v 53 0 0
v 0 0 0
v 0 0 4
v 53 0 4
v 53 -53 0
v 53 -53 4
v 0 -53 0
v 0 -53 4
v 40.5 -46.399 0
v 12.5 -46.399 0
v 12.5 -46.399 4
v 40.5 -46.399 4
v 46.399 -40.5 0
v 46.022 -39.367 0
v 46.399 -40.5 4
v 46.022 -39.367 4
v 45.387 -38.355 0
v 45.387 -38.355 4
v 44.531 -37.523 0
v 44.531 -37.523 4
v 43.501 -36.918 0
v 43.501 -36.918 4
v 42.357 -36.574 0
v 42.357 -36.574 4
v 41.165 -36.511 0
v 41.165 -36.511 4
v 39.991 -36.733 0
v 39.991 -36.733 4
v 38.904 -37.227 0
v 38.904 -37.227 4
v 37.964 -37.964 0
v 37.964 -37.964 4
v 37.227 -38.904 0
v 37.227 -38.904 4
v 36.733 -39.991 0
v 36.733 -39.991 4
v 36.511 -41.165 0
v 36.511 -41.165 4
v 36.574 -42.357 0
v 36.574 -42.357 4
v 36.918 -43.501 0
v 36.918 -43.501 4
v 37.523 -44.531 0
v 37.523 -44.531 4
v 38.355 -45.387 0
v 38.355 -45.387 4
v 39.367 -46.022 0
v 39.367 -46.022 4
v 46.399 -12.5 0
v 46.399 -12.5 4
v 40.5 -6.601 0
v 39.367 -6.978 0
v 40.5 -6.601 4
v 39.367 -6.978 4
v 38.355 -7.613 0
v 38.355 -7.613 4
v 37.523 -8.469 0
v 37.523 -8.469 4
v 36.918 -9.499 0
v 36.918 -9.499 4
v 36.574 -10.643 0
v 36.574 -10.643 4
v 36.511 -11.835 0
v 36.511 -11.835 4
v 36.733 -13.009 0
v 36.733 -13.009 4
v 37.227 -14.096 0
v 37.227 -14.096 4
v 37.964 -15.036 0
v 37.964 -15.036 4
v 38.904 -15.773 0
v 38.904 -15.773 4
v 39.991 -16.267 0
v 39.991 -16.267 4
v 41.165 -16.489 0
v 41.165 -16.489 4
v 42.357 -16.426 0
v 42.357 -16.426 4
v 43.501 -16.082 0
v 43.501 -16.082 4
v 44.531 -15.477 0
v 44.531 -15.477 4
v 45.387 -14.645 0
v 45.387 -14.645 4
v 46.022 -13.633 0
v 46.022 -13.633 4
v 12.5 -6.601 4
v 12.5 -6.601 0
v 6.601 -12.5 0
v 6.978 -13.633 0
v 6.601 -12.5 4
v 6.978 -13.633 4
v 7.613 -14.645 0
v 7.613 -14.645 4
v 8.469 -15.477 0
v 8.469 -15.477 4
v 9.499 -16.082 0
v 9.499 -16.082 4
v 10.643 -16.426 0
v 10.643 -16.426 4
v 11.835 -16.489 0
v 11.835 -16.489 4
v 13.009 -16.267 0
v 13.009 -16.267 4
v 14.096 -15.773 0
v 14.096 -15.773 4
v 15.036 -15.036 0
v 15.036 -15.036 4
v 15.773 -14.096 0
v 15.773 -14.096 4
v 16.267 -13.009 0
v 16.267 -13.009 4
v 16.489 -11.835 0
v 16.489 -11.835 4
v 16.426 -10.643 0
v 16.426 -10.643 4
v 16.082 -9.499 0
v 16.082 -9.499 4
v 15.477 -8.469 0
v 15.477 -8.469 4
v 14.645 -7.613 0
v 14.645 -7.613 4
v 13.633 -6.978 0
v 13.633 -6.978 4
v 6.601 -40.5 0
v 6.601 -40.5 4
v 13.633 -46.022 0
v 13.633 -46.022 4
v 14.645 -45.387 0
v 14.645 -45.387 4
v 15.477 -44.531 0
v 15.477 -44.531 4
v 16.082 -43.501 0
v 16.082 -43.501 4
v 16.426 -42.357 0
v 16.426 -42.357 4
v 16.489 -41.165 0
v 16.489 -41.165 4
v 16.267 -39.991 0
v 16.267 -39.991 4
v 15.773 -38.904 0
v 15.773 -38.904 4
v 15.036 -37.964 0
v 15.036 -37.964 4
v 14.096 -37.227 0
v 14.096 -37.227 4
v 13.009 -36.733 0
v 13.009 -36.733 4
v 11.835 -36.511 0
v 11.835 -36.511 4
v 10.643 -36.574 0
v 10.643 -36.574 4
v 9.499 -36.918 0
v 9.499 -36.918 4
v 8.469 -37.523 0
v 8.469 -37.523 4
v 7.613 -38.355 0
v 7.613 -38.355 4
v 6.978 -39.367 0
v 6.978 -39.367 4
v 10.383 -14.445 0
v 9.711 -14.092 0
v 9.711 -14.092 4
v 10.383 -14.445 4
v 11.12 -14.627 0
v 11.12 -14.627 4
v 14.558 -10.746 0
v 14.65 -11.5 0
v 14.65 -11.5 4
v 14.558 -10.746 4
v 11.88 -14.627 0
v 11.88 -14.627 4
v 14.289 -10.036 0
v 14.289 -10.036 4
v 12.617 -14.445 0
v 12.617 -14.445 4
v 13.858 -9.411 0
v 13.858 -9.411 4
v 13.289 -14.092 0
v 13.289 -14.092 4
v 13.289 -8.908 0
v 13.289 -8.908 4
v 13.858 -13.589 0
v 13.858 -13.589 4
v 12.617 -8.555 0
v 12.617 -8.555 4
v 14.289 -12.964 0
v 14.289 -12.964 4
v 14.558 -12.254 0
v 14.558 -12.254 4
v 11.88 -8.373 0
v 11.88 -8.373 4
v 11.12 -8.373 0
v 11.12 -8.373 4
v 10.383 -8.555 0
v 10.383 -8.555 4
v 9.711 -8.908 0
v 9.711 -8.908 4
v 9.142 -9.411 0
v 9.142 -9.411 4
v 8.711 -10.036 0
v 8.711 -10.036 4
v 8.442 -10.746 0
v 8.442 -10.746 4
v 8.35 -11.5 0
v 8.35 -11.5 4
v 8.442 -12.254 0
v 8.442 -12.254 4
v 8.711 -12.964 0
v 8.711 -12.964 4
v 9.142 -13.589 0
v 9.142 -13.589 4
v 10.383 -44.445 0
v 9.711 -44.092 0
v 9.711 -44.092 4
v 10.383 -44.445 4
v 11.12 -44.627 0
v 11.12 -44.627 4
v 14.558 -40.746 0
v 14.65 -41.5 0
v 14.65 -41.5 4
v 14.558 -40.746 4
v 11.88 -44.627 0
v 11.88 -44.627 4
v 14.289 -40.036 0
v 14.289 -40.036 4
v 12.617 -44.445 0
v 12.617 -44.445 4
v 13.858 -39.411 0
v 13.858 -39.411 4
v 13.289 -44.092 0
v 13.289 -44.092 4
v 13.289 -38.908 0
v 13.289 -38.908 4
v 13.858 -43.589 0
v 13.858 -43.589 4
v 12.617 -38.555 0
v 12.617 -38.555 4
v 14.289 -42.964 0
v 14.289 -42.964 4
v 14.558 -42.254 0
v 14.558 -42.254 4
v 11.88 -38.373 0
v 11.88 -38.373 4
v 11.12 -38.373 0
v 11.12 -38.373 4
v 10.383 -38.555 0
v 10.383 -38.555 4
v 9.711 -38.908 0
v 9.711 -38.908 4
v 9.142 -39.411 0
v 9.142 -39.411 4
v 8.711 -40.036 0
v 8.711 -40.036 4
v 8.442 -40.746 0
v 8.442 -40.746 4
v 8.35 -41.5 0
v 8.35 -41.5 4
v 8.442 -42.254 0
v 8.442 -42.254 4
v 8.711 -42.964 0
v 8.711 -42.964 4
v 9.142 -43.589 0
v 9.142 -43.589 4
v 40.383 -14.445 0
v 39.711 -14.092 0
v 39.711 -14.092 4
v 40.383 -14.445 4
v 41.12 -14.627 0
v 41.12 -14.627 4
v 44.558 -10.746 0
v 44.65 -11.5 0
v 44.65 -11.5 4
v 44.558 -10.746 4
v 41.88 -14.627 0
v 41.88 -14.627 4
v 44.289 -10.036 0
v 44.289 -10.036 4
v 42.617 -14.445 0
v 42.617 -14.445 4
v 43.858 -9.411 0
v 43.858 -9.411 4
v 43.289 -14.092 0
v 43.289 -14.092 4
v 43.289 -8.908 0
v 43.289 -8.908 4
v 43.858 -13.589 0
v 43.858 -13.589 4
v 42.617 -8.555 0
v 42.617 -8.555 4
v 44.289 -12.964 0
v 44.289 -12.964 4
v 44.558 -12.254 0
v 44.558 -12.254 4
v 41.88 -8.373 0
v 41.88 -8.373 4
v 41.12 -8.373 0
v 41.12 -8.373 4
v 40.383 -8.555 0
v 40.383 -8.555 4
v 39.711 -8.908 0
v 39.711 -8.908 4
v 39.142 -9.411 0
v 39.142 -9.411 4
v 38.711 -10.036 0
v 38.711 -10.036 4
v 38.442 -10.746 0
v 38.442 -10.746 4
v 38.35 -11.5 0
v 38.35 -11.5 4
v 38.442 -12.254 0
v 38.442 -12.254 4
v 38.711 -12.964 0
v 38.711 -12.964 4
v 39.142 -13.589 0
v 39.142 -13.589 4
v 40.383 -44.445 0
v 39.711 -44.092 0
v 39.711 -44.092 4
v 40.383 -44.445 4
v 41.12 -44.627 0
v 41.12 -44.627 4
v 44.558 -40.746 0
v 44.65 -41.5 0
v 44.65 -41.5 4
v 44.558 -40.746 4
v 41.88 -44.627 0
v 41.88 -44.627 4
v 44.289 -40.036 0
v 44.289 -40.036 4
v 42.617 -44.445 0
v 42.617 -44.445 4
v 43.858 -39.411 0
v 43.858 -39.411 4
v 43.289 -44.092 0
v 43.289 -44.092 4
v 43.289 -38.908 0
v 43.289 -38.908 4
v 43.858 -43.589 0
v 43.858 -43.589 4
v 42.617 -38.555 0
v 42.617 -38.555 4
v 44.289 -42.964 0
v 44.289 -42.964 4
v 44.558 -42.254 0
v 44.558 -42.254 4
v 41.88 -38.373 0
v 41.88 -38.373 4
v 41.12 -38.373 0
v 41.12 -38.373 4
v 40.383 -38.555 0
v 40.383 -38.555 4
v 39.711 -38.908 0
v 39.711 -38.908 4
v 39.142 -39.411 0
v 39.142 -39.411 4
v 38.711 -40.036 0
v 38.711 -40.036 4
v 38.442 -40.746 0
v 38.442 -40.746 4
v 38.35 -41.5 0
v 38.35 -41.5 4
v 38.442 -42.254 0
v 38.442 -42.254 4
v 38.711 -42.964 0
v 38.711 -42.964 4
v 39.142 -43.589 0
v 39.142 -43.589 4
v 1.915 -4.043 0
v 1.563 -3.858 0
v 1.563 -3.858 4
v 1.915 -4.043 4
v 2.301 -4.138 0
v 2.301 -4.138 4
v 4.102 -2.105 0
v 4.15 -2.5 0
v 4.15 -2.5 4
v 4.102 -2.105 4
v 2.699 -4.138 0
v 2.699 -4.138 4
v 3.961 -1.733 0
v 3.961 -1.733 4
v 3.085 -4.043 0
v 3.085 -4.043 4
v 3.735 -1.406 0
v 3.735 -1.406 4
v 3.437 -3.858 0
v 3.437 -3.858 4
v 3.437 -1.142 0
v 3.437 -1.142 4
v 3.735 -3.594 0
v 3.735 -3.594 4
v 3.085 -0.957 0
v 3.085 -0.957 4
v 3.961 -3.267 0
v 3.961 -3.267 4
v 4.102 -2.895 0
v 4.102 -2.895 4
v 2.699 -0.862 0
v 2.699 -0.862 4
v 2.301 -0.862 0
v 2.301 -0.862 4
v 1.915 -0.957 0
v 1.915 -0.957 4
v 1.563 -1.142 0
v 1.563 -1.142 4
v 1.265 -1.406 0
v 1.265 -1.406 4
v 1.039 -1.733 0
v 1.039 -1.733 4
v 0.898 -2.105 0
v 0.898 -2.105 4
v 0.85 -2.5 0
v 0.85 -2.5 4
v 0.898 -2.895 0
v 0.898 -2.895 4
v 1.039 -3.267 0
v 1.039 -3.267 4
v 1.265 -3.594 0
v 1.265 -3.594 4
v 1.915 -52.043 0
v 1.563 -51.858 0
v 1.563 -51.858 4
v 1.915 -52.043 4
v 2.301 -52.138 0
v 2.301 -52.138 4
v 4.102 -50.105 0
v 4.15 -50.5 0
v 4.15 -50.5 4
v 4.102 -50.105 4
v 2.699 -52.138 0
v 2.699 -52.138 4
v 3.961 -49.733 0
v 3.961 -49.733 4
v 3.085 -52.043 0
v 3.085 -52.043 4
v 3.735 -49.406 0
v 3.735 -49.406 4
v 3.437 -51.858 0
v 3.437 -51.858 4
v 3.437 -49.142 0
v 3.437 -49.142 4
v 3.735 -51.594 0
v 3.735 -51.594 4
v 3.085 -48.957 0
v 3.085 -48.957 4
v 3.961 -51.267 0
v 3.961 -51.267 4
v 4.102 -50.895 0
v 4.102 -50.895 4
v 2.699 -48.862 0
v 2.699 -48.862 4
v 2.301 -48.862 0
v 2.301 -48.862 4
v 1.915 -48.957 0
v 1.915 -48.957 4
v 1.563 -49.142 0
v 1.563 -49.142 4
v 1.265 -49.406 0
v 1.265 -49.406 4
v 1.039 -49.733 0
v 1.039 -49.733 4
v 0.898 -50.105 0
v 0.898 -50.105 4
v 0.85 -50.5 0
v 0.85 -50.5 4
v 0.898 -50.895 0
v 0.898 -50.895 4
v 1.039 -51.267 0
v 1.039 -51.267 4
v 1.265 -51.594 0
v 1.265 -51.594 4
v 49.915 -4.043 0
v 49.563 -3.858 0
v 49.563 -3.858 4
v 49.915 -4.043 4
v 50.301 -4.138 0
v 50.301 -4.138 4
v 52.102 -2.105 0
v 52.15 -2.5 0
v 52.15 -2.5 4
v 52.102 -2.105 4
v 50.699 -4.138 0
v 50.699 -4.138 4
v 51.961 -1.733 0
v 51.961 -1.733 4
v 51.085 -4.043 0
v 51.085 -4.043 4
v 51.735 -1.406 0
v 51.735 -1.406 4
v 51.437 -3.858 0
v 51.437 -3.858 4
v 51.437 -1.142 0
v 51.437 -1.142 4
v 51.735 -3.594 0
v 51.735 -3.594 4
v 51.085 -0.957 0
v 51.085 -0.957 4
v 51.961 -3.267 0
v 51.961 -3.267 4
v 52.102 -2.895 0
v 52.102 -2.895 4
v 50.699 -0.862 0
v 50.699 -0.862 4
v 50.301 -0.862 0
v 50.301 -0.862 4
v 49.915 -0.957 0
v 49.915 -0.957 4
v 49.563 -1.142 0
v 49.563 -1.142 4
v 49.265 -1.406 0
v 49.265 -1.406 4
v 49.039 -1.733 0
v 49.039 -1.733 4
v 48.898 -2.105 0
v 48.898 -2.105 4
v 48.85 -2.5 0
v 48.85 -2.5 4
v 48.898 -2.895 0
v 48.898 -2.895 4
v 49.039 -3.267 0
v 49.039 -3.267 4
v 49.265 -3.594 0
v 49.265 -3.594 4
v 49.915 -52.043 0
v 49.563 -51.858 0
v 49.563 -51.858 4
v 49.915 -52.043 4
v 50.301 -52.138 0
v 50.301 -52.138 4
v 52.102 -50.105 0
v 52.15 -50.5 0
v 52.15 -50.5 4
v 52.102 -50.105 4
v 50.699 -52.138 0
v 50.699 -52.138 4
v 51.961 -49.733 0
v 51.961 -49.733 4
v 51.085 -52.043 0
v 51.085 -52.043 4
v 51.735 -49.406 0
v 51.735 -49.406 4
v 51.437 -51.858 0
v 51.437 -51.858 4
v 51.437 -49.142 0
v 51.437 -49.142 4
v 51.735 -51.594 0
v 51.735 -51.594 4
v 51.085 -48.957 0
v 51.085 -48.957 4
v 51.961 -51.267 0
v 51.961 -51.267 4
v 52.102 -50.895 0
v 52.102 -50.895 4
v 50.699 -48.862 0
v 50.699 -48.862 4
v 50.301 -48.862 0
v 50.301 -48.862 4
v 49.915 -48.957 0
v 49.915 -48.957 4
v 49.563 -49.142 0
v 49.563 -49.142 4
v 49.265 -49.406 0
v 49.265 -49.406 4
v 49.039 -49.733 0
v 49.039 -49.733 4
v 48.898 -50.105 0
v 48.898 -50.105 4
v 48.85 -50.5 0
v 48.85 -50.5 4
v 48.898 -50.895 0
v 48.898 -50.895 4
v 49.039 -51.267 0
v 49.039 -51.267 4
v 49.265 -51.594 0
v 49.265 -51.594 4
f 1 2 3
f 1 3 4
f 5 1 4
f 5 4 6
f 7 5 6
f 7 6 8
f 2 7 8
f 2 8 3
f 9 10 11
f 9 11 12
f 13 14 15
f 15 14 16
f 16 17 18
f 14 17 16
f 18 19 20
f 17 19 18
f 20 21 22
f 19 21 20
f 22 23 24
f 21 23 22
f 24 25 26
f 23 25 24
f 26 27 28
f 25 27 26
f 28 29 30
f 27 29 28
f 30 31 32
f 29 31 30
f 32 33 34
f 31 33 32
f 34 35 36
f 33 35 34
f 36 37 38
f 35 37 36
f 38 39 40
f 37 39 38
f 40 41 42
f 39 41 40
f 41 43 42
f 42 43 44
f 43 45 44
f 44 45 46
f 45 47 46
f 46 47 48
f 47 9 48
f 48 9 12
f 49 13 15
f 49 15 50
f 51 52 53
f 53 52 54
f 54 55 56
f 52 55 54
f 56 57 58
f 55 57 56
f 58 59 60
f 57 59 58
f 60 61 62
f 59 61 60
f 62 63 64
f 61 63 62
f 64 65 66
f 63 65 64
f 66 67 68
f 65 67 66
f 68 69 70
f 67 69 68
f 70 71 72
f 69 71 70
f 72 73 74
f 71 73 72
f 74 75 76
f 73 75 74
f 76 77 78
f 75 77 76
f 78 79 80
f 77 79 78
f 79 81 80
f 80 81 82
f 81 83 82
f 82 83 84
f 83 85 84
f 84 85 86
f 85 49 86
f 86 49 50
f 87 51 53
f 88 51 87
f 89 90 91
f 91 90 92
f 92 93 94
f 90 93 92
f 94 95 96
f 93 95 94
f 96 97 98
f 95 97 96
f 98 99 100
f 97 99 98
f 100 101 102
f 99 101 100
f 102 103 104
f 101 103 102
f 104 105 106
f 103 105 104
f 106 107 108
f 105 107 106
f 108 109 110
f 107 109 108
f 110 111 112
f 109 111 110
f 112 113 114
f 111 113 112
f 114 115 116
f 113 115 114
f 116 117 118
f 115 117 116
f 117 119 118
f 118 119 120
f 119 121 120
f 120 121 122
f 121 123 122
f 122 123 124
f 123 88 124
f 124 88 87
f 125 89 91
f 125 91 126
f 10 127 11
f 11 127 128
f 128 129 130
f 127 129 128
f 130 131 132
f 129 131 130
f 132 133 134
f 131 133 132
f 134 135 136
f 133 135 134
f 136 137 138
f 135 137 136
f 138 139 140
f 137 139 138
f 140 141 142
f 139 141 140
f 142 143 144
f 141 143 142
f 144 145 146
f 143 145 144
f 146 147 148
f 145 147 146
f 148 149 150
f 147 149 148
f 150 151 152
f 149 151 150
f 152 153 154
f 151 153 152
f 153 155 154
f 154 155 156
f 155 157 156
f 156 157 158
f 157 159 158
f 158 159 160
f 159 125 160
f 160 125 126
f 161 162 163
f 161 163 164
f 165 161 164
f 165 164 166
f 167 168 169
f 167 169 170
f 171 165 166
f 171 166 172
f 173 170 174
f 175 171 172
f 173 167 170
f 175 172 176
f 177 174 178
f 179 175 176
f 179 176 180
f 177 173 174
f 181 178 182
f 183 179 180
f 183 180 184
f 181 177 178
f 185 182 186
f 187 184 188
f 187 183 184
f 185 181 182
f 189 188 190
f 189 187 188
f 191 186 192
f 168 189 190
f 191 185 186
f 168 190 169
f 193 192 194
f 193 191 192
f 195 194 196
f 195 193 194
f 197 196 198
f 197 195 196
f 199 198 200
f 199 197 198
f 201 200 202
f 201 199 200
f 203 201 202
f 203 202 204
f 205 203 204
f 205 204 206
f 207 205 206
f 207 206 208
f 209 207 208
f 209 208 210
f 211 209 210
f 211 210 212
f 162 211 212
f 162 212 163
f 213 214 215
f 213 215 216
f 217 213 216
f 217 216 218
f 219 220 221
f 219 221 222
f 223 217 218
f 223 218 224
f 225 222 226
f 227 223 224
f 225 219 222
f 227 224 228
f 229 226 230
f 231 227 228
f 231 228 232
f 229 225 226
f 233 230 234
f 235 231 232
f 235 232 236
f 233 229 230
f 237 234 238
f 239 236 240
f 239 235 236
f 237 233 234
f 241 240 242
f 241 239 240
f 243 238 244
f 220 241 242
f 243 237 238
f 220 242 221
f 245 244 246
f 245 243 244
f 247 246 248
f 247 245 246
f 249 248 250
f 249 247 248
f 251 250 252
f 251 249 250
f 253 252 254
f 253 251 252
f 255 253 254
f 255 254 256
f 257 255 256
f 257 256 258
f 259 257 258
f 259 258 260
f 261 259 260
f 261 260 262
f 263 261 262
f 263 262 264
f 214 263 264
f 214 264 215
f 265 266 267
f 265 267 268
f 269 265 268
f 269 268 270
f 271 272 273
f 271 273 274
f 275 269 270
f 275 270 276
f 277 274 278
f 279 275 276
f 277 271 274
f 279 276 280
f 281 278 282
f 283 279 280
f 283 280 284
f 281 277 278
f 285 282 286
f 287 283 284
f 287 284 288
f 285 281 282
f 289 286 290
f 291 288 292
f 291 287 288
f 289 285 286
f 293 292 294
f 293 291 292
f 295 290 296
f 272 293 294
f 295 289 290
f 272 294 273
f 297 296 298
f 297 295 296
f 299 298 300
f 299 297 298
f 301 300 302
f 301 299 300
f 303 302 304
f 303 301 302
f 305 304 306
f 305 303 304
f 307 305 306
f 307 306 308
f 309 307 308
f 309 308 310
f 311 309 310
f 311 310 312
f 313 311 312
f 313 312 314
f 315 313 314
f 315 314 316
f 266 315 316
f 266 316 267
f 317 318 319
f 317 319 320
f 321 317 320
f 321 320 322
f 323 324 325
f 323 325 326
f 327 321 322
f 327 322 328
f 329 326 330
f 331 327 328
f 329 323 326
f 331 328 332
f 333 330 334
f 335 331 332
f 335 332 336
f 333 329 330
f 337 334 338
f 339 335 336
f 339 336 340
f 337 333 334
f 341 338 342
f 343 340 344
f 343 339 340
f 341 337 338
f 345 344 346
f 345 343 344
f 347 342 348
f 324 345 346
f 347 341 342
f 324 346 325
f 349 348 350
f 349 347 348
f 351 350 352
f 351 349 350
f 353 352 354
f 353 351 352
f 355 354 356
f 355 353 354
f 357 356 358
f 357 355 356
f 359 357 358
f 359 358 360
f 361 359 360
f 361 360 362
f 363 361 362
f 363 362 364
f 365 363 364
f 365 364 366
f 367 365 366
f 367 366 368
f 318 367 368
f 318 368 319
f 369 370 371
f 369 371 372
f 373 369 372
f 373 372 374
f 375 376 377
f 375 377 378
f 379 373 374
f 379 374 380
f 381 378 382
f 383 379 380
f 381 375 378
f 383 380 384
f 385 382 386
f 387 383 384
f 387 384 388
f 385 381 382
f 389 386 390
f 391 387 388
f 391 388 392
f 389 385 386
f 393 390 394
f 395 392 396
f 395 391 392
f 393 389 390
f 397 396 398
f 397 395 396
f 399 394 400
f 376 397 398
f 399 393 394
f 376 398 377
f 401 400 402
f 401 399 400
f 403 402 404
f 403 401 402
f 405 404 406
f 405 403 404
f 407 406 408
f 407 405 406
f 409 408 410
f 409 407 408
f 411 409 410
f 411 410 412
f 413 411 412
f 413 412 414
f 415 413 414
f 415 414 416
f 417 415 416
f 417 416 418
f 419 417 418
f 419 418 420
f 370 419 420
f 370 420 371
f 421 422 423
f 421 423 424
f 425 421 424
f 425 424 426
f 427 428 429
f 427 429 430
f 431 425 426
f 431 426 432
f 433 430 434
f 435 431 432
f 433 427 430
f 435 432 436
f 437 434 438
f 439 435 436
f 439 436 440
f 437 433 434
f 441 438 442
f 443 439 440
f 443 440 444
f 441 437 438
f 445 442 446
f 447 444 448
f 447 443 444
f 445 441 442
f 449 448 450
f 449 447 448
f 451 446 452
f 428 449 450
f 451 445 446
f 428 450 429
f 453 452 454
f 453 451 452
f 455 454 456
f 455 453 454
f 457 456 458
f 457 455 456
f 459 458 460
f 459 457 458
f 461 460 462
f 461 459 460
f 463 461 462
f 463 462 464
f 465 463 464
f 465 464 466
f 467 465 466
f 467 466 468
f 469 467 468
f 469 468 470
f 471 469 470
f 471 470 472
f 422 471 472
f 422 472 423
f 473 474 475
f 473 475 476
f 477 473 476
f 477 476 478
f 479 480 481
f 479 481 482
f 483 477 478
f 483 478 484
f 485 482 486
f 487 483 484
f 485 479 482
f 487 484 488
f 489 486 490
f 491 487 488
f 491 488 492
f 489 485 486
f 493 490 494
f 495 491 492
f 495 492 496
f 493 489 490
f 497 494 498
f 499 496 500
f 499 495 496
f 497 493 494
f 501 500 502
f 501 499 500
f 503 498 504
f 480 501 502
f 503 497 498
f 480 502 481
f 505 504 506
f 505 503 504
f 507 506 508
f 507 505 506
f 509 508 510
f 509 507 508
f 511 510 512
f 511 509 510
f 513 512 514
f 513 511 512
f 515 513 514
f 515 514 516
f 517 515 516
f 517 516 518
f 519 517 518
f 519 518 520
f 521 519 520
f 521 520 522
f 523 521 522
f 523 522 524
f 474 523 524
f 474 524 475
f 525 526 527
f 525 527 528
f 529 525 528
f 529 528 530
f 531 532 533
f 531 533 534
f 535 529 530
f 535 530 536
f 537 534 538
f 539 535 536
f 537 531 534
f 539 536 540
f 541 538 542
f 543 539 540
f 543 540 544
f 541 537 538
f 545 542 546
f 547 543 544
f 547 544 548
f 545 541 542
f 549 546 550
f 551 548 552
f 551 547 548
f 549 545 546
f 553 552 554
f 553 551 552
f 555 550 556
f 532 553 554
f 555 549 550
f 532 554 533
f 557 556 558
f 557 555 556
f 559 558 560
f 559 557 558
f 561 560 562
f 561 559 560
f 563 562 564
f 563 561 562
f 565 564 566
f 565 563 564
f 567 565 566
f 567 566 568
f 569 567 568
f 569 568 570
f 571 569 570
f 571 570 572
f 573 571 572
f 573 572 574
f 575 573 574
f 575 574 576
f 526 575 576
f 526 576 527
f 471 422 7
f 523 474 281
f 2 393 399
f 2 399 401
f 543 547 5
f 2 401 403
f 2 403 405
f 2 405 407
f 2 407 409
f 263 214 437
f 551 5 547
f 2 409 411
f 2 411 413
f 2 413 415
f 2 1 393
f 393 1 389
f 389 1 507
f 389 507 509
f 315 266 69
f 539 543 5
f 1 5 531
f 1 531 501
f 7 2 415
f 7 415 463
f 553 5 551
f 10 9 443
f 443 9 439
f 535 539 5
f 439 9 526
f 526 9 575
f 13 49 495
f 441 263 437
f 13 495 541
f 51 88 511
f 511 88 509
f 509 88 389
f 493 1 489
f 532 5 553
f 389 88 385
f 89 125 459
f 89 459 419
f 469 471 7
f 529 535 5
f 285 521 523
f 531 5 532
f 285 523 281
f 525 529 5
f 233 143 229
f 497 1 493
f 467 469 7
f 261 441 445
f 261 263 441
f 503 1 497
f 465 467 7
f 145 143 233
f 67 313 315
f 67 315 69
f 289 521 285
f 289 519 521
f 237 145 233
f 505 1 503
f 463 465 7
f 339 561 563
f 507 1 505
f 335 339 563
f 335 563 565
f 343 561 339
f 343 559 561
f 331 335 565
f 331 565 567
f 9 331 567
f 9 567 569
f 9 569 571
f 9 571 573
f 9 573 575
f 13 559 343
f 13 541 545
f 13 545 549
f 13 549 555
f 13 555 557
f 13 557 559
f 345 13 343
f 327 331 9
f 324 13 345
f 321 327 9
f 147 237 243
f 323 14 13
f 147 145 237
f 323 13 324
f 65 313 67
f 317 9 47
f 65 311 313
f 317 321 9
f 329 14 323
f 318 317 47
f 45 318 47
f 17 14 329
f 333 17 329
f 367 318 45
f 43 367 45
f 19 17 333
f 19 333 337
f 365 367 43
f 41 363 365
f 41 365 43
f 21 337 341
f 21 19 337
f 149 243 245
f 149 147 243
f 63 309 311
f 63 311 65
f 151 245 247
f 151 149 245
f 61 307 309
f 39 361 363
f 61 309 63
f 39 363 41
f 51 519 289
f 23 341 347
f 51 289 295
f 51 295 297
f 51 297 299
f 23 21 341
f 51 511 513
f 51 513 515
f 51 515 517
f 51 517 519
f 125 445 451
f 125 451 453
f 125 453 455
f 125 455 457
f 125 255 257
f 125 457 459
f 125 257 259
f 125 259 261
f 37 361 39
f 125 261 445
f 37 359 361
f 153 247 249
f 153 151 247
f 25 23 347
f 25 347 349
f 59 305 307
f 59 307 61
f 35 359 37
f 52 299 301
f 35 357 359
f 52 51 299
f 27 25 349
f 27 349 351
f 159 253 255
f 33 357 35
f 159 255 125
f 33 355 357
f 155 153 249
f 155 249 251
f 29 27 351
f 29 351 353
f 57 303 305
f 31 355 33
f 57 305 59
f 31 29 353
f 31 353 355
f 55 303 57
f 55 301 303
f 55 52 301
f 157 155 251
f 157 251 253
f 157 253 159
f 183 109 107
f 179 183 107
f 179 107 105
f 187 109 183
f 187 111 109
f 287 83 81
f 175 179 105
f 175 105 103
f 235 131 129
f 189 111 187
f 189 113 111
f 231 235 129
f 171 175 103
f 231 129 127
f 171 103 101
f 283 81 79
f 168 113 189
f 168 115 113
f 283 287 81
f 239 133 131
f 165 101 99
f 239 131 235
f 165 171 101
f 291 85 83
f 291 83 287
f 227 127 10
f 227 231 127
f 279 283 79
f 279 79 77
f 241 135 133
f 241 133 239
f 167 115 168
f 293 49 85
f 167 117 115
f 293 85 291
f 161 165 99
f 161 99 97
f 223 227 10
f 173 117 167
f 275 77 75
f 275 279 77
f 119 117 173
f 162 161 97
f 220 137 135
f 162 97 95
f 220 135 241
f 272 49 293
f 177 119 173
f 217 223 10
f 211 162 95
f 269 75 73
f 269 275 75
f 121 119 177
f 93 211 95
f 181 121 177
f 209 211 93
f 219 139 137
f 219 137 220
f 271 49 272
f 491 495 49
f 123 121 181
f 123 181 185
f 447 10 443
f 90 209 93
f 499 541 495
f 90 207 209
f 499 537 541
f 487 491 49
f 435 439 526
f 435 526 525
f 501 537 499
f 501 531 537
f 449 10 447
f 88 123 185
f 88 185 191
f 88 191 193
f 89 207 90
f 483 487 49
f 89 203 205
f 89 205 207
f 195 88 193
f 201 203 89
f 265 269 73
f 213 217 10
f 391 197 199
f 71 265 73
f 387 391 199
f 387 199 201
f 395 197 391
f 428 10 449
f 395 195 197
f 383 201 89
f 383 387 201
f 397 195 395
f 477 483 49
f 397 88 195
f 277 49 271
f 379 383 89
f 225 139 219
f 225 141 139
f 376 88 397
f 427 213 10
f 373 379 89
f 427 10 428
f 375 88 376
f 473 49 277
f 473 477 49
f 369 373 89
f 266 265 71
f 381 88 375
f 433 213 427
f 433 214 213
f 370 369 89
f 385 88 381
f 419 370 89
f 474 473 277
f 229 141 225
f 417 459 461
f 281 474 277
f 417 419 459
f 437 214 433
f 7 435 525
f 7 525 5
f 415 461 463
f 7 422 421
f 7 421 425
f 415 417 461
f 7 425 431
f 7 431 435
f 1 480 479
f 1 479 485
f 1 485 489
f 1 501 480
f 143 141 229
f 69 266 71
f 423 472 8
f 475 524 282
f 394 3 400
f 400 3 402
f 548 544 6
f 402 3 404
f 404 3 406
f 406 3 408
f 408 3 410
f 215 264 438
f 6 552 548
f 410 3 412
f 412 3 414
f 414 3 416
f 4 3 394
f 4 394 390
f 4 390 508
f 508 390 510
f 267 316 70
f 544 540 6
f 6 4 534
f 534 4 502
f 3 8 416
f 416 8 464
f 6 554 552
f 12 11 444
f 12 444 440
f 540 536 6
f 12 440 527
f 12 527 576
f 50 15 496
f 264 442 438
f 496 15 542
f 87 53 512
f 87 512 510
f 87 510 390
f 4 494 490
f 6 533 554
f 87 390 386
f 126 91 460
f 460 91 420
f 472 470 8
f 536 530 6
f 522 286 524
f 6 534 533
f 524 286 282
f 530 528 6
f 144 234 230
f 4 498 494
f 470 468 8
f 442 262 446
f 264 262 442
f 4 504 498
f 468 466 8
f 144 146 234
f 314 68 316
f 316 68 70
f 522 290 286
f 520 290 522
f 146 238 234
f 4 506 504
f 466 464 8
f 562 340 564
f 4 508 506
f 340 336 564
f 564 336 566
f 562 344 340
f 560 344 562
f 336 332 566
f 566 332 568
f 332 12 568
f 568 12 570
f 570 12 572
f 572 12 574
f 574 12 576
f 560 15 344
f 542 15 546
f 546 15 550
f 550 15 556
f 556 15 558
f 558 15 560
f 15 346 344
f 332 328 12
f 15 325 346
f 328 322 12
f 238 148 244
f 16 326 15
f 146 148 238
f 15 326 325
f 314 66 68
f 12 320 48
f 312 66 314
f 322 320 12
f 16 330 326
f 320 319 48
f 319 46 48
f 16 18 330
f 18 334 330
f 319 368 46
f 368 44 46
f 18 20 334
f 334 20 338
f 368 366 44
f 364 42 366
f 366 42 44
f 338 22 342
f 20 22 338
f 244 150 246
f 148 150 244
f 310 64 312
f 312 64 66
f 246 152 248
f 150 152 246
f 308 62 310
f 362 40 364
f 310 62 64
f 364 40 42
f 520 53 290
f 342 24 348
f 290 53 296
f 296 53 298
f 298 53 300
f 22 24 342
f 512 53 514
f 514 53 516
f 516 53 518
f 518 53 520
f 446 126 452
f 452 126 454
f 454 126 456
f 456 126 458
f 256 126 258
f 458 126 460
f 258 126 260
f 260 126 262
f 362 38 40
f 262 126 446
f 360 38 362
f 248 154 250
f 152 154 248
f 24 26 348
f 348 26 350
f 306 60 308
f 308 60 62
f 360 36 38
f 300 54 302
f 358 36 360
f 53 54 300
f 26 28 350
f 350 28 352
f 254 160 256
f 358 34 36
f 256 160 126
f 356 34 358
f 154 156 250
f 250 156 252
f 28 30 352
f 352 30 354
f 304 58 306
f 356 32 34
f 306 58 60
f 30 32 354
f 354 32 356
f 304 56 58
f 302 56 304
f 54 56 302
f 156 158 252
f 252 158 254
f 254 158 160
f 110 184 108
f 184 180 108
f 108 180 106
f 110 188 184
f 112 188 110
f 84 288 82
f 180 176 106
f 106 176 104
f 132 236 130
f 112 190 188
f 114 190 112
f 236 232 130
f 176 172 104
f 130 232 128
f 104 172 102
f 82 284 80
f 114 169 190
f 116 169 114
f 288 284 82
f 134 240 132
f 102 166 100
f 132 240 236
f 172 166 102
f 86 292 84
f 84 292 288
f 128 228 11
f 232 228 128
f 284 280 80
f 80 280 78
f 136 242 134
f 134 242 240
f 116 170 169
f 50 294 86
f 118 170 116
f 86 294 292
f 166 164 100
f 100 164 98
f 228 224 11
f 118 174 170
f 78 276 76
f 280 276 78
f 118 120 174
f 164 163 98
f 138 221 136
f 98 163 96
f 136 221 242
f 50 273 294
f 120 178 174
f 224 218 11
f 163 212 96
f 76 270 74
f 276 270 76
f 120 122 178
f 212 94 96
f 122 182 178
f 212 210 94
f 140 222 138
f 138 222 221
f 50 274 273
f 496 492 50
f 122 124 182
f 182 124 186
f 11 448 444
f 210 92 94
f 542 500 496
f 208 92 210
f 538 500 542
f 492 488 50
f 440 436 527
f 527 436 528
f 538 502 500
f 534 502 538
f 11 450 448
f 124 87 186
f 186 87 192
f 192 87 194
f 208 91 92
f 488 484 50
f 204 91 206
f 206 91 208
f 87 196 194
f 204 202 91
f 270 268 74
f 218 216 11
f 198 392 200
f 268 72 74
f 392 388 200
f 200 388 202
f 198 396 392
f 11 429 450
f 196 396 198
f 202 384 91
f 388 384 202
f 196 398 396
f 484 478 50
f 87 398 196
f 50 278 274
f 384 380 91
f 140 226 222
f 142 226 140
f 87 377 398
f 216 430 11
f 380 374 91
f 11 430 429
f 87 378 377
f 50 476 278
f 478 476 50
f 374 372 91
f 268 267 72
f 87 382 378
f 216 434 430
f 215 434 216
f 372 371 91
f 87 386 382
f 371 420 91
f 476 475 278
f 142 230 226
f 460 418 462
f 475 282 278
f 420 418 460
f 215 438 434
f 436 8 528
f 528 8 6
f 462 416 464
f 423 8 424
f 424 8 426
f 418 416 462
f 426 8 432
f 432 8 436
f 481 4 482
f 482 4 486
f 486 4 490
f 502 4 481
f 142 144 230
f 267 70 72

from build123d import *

# Parameters (mm, degrees)
SKETCH_W   = 53
SKETCH_H   = 53
SKETCH_R   = 1.65
SKETCH_R_2 = 3.15
PAD_DEPTH  = 4


with BuildPart() as part:
    # Sketch → Pad (new body)
    with BuildSketch(Plane.XY):
        with Locations((26.5, -26.5)):
            Rectangle(SKETCH_W, SKETCH_H)
        with Locations((2.5, -2.5)):
            Circle(SKETCH_R, mode=Mode.SUBTRACT)
        with Locations((50.5, -2.5)):
            Circle(SKETCH_R, mode=Mode.SUBTRACT)
        with Locations((50.5, -50.5)):
            Circle(SKETCH_R, mode=Mode.SUBTRACT)
        with Locations((2.5, -50.5)):
            Circle(SKETCH_R, mode=Mode.SUBTRACT)
        with Locations((11.5, -11.5)):
            Circle(SKETCH_R_2, mode=Mode.SUBTRACT)
        with Locations((41.5, -11.5)):
            Circle(SKETCH_R_2, mode=Mode.SUBTRACT)
        with Locations((41.5, -41.5)):
            Circle(SKETCH_R_2, mode=Mode.SUBTRACT)
        with Locations((11.5, -41.5)):
            Circle(SKETCH_R_2, mode=Mode.SUBTRACT)
        with BuildLine():
            ThreePointArc((6.601021, -12.5), (15.035534, -15.035534), (12.5, -6.601021))
            Line((40.5, -6.601021), (12.5, -6.601021))
            ThreePointArc((40.5, -6.601021), (37.964466, -15.035534), (46.398979, -12.5))
            Line((46.398979, -40.5), (46.398979, -12.5))
            ThreePointArc((46.398979, -40.5), (37.964466, -37.964466), (40.5, -46.398979))
            Line((12.5, -46.398979), (40.5, -46.398979))
            ThreePointArc((12.5, -46.398979), (15.035534, -37.964466), (6.601021, -40.5))
            Line((6.601021, -12.5), (6.601021, -40.5))
        make_face(mode=Mode.SUBTRACT)
    extrude(amount=PAD_DEPTH)


solid = part.part
